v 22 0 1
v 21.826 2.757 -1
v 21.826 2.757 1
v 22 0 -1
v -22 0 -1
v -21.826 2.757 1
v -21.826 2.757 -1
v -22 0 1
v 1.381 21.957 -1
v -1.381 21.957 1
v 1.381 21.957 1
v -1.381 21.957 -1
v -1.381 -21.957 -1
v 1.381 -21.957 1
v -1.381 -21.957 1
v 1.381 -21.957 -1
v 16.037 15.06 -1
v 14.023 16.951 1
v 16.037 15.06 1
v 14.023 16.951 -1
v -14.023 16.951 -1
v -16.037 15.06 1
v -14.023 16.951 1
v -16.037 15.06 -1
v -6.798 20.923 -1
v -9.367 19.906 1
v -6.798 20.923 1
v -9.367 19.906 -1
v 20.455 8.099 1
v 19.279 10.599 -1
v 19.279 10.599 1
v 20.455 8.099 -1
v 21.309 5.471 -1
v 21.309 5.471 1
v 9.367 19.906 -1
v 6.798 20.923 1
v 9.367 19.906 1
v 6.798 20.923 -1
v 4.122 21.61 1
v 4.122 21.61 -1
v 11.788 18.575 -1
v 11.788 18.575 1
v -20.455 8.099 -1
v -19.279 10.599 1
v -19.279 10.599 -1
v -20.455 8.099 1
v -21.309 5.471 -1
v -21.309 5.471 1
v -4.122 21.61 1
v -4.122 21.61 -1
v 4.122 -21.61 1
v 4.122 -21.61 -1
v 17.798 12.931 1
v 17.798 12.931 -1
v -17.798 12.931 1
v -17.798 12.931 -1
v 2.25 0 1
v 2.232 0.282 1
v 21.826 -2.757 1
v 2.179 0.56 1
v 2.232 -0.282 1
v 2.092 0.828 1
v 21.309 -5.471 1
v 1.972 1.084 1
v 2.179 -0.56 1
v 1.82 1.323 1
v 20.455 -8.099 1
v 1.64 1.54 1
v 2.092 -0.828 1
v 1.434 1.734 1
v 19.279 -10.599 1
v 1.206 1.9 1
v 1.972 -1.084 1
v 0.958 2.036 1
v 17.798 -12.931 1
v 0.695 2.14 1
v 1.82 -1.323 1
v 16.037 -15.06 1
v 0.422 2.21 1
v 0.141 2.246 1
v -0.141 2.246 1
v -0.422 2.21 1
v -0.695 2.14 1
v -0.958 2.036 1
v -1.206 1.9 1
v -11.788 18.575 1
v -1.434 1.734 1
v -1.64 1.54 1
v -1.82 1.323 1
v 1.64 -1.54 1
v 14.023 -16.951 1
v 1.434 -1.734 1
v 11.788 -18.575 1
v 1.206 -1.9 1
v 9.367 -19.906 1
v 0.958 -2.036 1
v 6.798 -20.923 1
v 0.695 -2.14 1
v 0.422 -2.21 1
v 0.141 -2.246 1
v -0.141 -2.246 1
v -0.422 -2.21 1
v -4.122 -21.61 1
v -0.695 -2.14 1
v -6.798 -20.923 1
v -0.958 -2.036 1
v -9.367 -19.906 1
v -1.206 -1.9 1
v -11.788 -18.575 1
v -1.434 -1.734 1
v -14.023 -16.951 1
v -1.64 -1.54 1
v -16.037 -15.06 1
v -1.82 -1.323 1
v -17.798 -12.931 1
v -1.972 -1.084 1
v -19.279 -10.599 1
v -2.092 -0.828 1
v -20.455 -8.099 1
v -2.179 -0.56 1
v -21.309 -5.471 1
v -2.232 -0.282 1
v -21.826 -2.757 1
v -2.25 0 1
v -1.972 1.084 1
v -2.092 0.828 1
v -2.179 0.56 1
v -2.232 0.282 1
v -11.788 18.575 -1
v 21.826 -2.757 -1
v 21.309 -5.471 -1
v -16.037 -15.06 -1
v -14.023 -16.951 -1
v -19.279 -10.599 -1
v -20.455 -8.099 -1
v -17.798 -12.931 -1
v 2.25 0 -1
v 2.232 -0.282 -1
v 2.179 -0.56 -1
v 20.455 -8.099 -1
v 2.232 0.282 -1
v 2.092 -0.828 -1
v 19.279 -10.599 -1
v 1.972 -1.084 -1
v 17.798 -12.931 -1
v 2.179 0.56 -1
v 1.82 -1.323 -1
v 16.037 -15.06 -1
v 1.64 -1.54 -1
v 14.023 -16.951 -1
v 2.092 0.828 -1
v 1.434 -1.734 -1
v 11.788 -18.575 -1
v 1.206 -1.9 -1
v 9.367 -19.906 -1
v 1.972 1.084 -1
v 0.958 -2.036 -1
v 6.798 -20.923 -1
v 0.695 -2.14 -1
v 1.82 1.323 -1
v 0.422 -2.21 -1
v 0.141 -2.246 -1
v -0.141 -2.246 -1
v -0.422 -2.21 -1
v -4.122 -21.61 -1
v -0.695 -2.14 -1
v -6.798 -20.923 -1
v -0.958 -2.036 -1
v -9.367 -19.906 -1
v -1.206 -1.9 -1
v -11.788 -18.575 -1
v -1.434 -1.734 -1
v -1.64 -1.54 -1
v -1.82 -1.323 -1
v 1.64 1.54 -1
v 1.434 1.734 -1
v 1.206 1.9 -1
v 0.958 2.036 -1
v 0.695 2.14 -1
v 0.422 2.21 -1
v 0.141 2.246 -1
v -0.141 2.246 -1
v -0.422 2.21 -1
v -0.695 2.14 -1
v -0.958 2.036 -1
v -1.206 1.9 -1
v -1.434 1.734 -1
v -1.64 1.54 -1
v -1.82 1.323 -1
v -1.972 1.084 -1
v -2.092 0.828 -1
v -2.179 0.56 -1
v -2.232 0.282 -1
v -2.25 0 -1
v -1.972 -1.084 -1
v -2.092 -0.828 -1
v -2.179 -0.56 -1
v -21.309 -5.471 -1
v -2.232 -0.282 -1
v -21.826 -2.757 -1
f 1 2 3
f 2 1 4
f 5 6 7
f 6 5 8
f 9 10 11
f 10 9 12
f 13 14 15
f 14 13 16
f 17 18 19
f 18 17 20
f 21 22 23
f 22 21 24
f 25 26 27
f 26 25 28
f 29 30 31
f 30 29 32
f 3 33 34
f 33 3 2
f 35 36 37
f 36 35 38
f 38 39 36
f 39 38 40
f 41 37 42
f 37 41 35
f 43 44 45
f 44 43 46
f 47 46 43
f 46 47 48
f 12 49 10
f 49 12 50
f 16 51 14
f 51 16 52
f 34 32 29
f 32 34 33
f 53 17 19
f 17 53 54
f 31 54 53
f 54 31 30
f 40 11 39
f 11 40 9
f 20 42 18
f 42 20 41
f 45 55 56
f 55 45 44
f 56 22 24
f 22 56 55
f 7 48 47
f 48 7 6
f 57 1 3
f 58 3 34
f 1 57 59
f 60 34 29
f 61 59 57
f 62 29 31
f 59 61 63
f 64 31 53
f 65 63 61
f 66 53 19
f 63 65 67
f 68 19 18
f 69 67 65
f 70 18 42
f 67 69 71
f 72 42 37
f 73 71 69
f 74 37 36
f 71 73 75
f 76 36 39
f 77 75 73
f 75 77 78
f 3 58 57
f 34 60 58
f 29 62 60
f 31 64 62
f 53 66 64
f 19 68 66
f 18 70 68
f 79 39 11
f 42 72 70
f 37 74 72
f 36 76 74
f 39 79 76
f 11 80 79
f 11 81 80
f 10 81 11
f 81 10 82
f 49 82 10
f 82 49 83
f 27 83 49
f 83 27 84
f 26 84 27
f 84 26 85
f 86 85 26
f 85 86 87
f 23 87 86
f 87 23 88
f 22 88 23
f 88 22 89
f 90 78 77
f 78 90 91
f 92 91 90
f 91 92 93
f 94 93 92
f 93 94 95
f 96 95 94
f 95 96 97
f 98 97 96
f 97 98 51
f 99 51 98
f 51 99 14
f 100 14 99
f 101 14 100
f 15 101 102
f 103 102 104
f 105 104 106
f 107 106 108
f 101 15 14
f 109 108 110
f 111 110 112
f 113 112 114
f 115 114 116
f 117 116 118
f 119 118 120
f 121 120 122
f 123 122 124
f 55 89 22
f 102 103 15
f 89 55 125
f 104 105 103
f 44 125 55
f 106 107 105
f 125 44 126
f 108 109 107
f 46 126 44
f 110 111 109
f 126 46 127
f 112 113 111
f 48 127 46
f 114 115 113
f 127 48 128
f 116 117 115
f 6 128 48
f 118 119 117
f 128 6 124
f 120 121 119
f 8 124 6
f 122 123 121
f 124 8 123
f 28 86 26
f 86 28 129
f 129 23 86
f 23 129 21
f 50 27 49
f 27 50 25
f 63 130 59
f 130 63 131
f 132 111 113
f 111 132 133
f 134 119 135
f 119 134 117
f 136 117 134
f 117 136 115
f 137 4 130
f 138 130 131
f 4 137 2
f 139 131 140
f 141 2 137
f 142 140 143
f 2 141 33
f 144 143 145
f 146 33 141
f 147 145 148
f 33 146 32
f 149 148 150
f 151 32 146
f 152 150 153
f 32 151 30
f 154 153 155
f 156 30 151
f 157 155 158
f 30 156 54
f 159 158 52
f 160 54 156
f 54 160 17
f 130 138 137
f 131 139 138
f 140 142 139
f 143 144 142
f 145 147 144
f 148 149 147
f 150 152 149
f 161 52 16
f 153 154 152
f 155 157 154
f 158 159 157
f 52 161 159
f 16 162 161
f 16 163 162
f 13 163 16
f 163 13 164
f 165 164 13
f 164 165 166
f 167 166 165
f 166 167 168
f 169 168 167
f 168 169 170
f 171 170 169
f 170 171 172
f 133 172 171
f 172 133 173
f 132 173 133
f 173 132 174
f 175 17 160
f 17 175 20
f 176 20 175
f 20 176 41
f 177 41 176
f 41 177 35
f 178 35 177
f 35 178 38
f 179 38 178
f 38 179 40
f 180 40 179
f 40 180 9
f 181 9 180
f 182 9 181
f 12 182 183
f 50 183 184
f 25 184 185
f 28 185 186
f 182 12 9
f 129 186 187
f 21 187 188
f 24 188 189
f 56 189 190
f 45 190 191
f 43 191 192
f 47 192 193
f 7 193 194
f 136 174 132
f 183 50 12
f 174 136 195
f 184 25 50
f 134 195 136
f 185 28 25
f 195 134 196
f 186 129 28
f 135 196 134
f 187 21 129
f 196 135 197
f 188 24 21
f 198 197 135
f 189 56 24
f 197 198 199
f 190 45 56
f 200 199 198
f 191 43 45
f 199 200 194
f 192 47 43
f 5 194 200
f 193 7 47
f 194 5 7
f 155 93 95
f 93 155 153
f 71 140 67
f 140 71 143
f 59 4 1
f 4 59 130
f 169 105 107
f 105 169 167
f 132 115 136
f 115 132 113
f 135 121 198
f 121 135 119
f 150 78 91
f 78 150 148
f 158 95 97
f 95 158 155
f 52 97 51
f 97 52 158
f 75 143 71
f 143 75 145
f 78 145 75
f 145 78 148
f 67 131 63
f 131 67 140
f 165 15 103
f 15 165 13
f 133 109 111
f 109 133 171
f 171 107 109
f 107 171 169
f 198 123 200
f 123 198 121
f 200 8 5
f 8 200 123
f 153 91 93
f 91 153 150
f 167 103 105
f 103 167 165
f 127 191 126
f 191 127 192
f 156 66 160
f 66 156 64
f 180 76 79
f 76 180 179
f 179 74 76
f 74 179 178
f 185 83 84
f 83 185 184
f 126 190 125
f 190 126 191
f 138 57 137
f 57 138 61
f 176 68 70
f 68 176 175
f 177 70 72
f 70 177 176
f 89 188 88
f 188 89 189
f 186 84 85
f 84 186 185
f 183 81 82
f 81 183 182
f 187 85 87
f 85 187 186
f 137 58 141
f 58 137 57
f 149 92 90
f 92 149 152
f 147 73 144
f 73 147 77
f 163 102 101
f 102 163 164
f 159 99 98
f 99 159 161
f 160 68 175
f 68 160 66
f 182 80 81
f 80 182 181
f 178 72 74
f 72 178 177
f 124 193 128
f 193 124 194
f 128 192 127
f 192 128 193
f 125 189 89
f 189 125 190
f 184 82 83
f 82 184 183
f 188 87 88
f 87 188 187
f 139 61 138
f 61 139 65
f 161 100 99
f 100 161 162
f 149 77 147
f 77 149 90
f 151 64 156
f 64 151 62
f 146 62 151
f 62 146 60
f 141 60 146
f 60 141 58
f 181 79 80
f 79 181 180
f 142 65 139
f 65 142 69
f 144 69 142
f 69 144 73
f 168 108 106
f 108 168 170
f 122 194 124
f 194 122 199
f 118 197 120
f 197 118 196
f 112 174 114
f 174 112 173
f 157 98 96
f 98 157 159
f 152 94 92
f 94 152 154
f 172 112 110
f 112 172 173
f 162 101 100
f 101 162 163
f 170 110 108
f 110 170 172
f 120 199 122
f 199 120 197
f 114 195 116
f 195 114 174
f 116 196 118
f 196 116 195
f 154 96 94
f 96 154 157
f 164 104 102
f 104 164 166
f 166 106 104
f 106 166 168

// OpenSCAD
$fn = 50;


difference() {
	union() {
		translate(v = [0, 0, -1.0000000000]) {
			cylinder(h = 2, r = 22.0000000000);
		}
	}
	union() {
		translate(v = [0, 0, -100.0000000000]) {
			cylinder(h = 200, r = 2.2500000000);
		}
	}
}
